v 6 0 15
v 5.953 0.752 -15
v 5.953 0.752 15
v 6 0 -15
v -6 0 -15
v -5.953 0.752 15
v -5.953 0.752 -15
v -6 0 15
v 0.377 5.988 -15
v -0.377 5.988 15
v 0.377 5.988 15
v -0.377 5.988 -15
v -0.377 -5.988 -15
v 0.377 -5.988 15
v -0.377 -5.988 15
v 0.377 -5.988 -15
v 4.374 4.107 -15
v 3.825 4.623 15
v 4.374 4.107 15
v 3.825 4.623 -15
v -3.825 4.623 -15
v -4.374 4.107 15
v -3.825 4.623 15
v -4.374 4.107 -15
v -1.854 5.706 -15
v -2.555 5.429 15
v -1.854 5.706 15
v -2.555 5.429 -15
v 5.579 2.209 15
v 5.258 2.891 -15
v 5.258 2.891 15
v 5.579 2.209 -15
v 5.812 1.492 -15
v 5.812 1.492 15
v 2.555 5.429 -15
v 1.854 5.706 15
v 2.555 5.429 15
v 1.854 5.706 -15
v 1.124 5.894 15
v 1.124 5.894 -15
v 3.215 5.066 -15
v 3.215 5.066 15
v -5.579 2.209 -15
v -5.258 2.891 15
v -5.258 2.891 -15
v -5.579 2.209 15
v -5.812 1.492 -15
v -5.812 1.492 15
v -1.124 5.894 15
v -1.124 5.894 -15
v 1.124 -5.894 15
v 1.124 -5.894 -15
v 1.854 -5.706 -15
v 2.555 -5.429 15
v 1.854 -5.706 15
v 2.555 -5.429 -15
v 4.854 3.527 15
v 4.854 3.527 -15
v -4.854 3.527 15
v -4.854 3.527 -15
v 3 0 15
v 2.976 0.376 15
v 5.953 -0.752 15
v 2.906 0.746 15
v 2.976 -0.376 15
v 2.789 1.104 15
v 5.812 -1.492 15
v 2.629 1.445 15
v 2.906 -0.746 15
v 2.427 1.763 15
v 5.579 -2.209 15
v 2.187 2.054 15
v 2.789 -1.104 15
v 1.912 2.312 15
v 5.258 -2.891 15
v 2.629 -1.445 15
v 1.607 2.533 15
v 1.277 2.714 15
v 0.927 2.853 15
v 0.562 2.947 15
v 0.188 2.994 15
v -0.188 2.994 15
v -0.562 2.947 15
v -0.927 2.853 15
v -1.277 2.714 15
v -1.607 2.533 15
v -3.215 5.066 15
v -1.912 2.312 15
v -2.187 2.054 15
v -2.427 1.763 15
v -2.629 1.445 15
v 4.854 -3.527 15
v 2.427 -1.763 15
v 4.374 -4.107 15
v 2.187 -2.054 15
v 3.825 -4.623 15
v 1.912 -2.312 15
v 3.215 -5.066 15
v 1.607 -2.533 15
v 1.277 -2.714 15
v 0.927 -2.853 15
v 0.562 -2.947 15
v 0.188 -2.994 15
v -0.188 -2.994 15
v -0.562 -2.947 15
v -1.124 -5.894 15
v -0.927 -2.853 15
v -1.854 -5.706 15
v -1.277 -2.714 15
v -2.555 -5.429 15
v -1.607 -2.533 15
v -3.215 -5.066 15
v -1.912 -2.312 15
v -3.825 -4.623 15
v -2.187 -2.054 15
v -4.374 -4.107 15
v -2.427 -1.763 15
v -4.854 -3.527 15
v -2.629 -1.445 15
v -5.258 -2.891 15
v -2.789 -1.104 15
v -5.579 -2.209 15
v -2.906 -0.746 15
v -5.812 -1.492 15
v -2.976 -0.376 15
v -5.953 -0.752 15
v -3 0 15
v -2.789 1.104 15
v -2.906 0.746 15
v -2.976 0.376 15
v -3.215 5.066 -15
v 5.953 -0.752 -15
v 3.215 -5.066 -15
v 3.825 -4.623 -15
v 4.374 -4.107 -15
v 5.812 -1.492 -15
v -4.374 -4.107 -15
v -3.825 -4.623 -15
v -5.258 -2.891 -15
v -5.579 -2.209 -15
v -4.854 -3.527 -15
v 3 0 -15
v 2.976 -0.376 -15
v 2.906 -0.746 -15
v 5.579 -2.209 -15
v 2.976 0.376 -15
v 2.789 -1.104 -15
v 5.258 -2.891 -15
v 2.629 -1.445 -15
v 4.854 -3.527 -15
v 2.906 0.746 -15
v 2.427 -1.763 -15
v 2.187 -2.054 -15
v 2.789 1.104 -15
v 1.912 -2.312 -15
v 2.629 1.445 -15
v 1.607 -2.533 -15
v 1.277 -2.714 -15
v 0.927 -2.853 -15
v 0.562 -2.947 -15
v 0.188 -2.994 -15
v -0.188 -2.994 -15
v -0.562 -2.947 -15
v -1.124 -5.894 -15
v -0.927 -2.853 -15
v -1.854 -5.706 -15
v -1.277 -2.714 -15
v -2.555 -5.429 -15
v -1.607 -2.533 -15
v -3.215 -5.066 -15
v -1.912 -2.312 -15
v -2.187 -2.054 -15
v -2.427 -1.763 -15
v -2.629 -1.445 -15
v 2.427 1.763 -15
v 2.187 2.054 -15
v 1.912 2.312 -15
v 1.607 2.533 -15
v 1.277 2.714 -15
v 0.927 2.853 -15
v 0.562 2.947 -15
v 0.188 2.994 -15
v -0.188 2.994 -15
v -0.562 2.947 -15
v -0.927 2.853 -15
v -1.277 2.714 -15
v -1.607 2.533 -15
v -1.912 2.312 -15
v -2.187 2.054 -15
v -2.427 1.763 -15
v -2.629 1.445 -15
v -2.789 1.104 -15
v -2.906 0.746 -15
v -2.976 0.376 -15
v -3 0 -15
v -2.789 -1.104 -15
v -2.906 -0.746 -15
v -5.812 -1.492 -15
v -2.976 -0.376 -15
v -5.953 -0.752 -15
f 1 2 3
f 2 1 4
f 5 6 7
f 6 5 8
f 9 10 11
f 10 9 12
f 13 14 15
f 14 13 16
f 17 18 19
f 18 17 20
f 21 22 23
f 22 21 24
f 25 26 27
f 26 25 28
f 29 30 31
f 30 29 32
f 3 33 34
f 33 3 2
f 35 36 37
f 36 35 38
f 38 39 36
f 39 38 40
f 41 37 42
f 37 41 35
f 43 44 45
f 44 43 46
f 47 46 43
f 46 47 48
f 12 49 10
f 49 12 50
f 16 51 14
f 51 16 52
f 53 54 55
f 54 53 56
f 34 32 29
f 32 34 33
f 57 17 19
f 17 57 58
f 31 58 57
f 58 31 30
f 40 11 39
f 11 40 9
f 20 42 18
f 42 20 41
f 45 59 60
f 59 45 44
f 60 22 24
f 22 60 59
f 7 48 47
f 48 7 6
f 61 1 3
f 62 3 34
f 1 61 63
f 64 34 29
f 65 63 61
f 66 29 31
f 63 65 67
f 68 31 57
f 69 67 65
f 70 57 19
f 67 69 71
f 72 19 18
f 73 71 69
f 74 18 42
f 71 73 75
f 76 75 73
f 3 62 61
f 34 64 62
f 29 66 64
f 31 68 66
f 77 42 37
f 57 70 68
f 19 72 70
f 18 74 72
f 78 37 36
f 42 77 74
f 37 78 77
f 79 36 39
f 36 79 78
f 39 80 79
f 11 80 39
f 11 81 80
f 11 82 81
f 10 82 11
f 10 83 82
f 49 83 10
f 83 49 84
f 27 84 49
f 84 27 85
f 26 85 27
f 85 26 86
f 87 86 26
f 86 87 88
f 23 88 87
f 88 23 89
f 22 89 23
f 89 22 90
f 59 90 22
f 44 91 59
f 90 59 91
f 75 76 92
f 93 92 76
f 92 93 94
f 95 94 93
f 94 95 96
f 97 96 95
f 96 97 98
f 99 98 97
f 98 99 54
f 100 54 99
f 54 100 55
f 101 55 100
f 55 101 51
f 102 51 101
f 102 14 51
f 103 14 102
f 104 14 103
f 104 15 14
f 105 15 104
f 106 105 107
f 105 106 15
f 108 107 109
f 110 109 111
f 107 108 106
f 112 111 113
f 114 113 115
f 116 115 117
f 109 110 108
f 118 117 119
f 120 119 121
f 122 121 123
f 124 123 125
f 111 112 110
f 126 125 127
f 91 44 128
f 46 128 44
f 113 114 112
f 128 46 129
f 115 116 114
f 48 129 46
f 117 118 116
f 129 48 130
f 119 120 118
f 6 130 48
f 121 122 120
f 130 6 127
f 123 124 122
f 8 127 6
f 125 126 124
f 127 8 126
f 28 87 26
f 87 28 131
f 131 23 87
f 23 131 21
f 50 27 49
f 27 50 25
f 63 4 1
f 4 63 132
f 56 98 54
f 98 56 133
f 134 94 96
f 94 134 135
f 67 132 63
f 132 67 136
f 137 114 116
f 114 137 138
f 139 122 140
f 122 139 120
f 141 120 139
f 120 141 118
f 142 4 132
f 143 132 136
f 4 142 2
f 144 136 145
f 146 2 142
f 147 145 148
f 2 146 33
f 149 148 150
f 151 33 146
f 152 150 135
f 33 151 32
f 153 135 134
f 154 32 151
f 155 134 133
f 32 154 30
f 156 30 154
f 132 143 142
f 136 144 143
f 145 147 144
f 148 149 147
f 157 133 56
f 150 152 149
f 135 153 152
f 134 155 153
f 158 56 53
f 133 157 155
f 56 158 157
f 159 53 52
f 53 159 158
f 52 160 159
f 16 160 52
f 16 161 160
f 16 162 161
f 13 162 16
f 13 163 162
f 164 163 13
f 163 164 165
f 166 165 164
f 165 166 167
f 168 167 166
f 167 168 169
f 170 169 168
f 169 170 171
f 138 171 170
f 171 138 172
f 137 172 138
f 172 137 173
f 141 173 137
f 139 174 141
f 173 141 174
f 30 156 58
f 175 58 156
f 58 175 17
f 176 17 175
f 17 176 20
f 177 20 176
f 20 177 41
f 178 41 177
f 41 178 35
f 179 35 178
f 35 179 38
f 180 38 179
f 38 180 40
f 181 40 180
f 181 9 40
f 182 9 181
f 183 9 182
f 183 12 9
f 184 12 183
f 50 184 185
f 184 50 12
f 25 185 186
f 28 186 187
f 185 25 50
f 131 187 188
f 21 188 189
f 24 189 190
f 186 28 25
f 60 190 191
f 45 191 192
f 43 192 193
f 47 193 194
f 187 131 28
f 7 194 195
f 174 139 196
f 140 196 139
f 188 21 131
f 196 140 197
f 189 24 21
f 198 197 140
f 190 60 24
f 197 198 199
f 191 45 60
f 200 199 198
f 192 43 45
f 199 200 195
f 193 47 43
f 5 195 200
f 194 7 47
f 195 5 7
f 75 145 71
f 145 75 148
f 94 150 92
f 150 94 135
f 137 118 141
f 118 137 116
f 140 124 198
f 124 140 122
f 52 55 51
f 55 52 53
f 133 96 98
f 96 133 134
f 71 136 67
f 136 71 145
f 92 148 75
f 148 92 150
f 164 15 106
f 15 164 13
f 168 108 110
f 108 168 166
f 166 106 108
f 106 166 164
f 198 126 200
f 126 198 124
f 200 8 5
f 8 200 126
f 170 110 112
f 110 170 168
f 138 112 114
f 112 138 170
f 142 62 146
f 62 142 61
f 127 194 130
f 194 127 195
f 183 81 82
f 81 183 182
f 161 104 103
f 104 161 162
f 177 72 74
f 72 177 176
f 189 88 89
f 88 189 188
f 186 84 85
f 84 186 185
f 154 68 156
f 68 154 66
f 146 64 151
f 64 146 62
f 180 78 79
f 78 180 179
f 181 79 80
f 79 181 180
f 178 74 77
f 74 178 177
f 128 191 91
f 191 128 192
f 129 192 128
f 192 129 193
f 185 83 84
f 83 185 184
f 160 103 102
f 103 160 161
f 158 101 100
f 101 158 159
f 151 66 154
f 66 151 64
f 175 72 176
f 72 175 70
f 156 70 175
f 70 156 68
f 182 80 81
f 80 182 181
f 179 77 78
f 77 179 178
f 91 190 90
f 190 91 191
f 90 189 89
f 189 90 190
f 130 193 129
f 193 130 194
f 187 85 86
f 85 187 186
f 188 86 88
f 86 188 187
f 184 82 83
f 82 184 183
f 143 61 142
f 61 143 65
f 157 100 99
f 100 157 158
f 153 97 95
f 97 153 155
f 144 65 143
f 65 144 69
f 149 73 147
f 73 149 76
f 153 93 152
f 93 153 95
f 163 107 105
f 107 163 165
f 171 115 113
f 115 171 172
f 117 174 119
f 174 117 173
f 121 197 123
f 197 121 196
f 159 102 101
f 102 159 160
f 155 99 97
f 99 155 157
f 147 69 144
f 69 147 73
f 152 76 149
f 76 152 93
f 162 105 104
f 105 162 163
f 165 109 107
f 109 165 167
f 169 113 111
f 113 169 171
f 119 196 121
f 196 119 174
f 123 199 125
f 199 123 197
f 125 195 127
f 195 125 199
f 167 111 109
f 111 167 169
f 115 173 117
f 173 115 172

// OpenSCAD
$fn = 50;


difference() {
	union() {
		translate(v = [0, 0, -15.0000000000]) {
			cylinder(h = 30, r = 6.0000000000);
		}
	}
	union() {
		translate(v = [0, 0, -100.0000000000]) {
			cylinder(h = 200, r = 3);
		}
	}
}
